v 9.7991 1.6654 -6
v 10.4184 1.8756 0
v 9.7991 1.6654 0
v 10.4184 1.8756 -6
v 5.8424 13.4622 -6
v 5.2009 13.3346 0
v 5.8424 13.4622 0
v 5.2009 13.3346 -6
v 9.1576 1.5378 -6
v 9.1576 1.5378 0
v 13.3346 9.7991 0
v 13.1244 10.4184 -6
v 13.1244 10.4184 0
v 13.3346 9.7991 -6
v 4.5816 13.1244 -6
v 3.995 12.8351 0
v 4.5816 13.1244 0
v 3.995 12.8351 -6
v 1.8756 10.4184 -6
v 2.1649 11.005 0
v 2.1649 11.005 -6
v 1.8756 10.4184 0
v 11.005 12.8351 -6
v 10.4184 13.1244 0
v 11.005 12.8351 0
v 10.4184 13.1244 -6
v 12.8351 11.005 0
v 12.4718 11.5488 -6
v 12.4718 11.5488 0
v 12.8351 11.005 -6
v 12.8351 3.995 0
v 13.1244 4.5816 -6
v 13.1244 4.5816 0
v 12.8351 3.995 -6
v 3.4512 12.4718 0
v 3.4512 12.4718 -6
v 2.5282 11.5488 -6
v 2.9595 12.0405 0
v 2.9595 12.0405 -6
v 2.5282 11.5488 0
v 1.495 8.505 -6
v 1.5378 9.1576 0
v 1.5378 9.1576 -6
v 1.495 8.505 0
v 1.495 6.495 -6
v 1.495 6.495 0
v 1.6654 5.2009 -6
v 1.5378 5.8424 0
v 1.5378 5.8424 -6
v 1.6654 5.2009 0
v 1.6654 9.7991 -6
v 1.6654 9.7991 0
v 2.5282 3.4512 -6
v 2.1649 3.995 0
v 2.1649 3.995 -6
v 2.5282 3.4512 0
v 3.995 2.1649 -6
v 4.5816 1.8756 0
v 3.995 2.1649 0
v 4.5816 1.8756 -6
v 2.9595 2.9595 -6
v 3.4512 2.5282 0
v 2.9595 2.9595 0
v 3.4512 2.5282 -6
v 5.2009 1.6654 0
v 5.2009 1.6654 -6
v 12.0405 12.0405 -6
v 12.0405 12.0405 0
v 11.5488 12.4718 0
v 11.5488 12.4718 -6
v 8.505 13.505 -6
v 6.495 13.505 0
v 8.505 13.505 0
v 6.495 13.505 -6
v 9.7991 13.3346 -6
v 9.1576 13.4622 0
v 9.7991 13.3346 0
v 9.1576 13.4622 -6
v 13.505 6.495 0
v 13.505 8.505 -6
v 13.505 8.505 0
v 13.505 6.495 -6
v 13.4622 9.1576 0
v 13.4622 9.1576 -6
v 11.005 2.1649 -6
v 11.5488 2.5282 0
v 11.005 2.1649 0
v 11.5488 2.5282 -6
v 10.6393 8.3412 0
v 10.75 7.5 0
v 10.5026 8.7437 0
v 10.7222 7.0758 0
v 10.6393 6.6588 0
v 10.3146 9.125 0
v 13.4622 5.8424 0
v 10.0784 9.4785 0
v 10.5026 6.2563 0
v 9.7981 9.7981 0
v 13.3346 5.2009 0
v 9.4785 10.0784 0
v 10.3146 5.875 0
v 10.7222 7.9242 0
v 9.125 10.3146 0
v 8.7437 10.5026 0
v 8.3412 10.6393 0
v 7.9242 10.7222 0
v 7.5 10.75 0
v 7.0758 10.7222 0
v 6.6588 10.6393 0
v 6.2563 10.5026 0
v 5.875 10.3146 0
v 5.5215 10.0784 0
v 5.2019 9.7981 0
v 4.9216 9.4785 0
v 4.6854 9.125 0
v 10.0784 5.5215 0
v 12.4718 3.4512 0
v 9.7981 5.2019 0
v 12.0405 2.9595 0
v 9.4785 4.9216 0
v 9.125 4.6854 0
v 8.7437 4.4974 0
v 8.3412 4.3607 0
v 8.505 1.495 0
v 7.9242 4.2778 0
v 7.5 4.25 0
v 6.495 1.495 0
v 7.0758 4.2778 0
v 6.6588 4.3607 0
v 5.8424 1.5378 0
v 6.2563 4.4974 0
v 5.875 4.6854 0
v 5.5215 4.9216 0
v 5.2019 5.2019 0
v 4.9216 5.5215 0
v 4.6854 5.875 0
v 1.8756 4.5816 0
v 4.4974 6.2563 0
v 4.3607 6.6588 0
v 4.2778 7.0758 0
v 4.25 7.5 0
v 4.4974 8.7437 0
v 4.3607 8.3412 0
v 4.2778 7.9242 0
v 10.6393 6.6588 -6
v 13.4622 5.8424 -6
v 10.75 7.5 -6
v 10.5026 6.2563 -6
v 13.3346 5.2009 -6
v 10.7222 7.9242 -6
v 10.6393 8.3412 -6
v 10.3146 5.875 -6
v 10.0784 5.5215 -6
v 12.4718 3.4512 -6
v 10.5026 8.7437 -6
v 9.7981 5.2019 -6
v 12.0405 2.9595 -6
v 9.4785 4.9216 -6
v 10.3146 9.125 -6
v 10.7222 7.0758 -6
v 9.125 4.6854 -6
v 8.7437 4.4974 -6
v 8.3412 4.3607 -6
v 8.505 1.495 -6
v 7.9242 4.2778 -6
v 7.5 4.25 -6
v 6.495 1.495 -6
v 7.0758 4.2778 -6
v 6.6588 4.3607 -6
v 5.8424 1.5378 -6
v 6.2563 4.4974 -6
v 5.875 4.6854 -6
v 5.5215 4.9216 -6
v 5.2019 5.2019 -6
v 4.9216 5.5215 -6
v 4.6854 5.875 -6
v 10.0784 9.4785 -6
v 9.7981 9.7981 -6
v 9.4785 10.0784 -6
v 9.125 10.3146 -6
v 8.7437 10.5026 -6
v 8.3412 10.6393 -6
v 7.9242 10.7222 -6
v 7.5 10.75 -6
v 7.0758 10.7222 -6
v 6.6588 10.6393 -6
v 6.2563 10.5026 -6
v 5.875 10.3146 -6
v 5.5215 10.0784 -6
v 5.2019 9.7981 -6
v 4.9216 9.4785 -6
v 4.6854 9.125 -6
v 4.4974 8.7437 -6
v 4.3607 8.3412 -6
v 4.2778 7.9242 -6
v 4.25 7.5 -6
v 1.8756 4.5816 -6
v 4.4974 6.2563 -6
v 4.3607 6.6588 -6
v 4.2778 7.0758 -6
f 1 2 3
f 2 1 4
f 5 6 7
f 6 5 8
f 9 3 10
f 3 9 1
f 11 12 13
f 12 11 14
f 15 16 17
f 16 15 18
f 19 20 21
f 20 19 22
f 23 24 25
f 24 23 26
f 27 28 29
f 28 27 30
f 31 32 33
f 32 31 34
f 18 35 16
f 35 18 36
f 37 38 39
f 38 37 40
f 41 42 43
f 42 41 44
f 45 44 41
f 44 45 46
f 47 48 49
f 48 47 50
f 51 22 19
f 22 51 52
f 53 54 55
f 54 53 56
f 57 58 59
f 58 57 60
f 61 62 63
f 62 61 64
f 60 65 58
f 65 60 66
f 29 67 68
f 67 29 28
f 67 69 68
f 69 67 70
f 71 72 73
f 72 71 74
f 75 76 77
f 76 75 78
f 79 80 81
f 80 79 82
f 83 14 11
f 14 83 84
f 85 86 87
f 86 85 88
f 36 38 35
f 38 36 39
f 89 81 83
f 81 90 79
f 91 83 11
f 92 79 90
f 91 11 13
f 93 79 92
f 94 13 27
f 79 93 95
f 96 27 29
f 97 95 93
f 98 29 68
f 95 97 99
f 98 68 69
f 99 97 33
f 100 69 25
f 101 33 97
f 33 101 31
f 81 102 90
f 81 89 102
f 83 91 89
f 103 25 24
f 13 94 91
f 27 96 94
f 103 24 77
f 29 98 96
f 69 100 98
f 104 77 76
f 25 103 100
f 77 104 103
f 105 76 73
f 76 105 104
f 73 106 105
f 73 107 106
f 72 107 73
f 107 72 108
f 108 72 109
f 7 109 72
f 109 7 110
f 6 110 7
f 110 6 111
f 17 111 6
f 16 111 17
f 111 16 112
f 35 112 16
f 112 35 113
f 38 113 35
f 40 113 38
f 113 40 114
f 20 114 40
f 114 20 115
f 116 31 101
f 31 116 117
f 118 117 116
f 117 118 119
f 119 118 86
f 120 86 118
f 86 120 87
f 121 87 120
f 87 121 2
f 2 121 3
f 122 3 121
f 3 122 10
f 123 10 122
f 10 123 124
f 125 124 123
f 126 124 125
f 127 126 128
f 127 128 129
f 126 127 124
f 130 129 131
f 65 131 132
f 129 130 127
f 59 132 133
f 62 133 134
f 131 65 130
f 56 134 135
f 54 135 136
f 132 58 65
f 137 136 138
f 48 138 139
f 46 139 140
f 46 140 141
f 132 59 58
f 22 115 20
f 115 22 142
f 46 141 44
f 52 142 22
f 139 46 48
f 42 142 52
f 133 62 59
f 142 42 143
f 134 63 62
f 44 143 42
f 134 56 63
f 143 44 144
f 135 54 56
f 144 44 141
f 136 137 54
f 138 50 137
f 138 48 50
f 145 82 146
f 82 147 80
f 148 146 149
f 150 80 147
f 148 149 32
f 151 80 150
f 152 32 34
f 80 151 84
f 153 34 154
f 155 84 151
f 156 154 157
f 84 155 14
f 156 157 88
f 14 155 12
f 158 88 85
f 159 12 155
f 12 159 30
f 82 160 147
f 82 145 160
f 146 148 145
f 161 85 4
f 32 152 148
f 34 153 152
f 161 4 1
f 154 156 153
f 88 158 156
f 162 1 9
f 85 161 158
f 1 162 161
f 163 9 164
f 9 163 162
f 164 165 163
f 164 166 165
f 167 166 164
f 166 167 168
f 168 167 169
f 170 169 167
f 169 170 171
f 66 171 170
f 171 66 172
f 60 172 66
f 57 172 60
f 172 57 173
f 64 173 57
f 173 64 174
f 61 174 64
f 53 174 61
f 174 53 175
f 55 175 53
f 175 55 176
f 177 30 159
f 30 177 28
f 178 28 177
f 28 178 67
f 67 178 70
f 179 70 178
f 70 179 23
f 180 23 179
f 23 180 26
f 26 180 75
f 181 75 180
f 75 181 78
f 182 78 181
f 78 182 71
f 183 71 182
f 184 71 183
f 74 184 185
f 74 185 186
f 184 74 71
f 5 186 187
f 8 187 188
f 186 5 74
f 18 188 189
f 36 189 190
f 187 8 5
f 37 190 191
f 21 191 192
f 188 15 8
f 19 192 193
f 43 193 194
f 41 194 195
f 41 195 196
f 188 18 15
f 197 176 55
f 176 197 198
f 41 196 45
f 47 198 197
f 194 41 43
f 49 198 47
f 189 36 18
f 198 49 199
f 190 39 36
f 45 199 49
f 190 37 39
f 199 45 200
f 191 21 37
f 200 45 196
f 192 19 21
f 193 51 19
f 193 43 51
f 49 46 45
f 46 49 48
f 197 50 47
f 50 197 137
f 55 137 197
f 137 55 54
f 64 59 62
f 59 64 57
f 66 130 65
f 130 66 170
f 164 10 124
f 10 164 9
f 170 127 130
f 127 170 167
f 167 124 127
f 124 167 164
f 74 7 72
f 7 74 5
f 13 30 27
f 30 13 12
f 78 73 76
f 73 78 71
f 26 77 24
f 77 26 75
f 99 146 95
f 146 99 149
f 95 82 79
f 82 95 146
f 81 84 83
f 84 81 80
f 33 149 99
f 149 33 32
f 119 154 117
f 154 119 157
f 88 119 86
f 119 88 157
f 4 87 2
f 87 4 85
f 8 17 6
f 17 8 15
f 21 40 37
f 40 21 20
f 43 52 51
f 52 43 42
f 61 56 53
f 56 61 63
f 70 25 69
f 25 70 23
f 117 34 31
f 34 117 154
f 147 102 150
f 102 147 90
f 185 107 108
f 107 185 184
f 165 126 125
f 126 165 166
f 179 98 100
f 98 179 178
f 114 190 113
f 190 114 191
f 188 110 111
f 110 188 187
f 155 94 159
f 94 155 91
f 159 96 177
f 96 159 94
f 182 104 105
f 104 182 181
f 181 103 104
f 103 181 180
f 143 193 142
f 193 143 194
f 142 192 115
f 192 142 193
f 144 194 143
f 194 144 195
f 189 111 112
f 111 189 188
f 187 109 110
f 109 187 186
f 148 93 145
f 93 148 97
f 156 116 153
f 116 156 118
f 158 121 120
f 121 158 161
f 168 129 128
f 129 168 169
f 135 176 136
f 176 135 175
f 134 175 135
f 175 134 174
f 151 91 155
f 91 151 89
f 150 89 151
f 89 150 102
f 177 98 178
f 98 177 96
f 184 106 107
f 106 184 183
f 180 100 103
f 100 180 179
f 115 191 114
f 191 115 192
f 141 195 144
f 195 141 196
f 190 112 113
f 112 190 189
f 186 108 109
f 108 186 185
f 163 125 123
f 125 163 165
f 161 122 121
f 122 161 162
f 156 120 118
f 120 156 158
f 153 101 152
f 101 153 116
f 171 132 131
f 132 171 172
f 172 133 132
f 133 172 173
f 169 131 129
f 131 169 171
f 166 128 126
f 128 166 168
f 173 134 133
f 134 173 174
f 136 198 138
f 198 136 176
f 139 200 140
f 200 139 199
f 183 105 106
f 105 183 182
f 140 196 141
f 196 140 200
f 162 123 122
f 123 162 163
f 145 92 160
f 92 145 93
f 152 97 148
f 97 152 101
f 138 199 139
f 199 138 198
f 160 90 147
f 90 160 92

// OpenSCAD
// Generated by SolidPython 1.1.3 on 2022-09-14 11:03:03
$fn = 48;


difference() {
	union() {
		color(alpha = 1.0000000000, c = "Gold") {
			translate(v = [7.5000000000, 7.5000000000, 0]) {
				rotate(a = [0, 0, 0]) {
					translate(v = [0, 0, -6]) {
						linear_extrude(height = 6) {
							offset(r = 5) {
								square(center = true, size = [2.0100000000, 2.0100000000]);
							}
						}
					}
				}
			}
		}
	}
	union() {
		color(alpha = 1.0000000000, c = "Gold") {
			translate(v = [7.5000000000, 7.5000000000, 0]) {
				rotate(a = [0, 0, 0]) {
					translate(v = [0, 0, -250]) {
						cylinder(h = 500, r = 3.2500000000);
					}
				}
			}
		}
	}
}
/***********************************************
*********      SolidPython code:      **********
************************************************
 
import subprocess

from solid.objects import *
from solid import scad_render_to_file, scad_render

import os

##################################################################################################################################################
##################################################################################################################################################
##################################################################################################################################################
##################################################################################################################################################
######  DIMENSION STUFF
##################################################################################################################################################
##################################################################################################################################################
##################################################################################################################################################
##################################################################################################################################################


mode = "3DPR"
#mode = "LAZE"
#mode = "TURE"
#mode = ""


######  Countersunk
countersunkM = []
WIDTH = 0
DEPTH = 1
countersunkM1width = 0; countersunkM1depth = 0; countersunkM2width = 0; countersunkM2depth = 0
countersunkM3width = 0
countersunkM3depth = 0
countersunkM4width = 0
countersunkM4depth = 0
countersunkM5width = 0
countersunkM5depth = 0
countersunkM6width = 0
countersunkM6depth = 0

######  Holes
holeM = []
holeM1 = 0
holeM2 = 0
holeM3 = 0
holeM4 = 0
holeM5 = 0
holeM6 = 0

######  Nuts
nutM = []
NUTWIDTH = 0
NUTDEPTH = 1
nutM1width = 0
nutM1depth = 0
nutM2width = 0
nutM2depth = 0
nutM3width = 0
nutM3depth = 0
nutM4width = 0
nutM4depth = 0
nutM5width = 0
nutM5depth = 0
nutM6width = 0
nutM6depth = 0

######  OOEB
ooebPinWidth = 0
ooebPinWidthWide = 0


######  Colors
colDefault = "Gold"

colOOEBbase = colDefault

colLEDRed = "red"
colWire = "gray"
    ######  Resistor
colRes = list()
colResistor = "beige"

colResBlack = "black"
colRes.append(colResBlack)
colResBrown = "brown"
colRes.append(colResBrown)
colResRed = "red"
colRes.append(colResRed)
colResOrange = "orange"
colRes.append(colResOrange)
colResYellow = "yellow"
colRes.append(colResYellow)
colResGreen = "green"
colRes.append(colResGreen)
colResBlue = "blue"
colRes.append(colResBlue)
colResPurple = "purple"
colRes.append(colResPurple)
colResGray = "gray"
colRes.append(colResGray)
colResWhite = "white"
colRes.append(colResWhite)





def changeMode(m="3DPR"):
    #print("####################################################      CHANGING MODES TO: " + m)
    global mode
    mode = m
    ######  Countersunk
    global countersunkM, countersunkM1width, countersunkM1depth, countersunkM2width, countersunkM2depth, countersunkM3width, countersunkM3depth, countersunkM4width, countersunkM4depth, countersunkM5width, countersunkM5depth, countersunkM6width, countersunkM6depth
    countersunkM = []
    countersunkM.append([0,0])
    countersunkM1width = 0 if mode== "3DPR" else 0
    countersunkM1depth = 0 if mode== "3DPR" else 0
    countersunkM.append([countersunkM1width,countersunkM1depth])
    countersunkM2width = 0 if mode== "3DPR" else 0
    countersunkM2depth = 0 if mode== "3DPR" else 0
    countersunkM.append([countersunkM2width,countersunkM2depth])
    countersunkM3width = 5.5/2+0.6 if mode== "3DPR" else 5.5/2
    countersunkM3depth = 1.7 if mode== "3DPR" else 1.7
    countersunkM.append([countersunkM3width,countersunkM3depth])
    countersunkM4width = 0 if mode== "3DPR" else 0
    countersunkM4depth = 0 if mode== "3DPR" else 0
    countersunkM.append([countersunkM4width,countersunkM4depth])
    countersunkM5width = 0 if mode== "3DPR" else 0
    countersunkM5depth = 0 if mode== "3DPR" else 0
    countersunkM.append([countersunkM5width,countersunkM5depth])
    countersunkM6width = 0 if mode== "3DPR" else 0
    countersunkM6depth = 0 if mode== "3DPR" else 0
    countersunkM.append([countersunkM6width,countersunkM6depth])
    ######  Holes
    global holeM, holeM1, holeM2, holeM3, holeM4, holeM5, holeM6, holeM7, holeM8
    holeM = []
    holeM1 = 1.2/2 if mode== "3DPR" else 1/2
    holeM2 = 2.3/2 if mode== "3DPR" else 2/2
    holeM3 = 3.4/2 if mode== "3DPR" else 3/2
    holeM4 = 4.4/2 if mode== "3DPR" else 4/2
    holeM5 = 5.4/2 if mode== "3DPR" else 5/2
    holeM6 = 6.5/2 if mode== "3DPR" else 6/2
    holeM7 = 7.5/2 if mode== "3DPR" else 7/2
    holeM8 = 8.6/2 if mode== "3DPR" else 8/2
    holeM.append(0)
    holeM.append(holeM1)
    holeM.append(holeM2)
    holeM.append(holeM3)
    holeM.append(holeM4)
    holeM.append(holeM5)
    holeM.append(holeM6)
    holeM.append(holeM7)
    holeM.append(holeM8)
    #####  Nuts
    global nutM, nutM1width, nutM1depth, nutM2width, nutM2depth, nutM3width, nutM3depth, nutM4width, nutM4depth, nutM5width, nutM5depth, nutM6width, nutM6depth
    nutM = []
    nutM.append([0,0]) 
    #M1 Nut
    nutM1width = 0
    nutM1depth = 0
    nutM.append([nutM1width,nutM1depth])    
    #M2 Nut
    nutM2width = 0
    nutM2depth = 0
    nutM.append([nutM2width,nutM2depth])    
    #M3 Nut
    nutM3width = 6.05 if mode== "3DPR" else 5.5
    nutM3depth = 2.5 if mode== "3DPR" else 2.5
    nutM.append([nutM3width,nutM3depth])    
    #M4 Nut
    nutM4width = 0
    nutM4depth = 0
    nutM.append([nutM4width,nutM4depth])    
    #M5 Nut
    nutM5width = 0
    nutM5depth = 0
    nutM.append([nutM5width,nutM5depth])    
    #M6 Nut
    nutM6width = 11 if mode== "3DPR" else 10
    nutM6depth = 5 if mode== "3DPR" else 5
    nutM.append([nutM6width,nutM6depth])    

    ######  OOEB
    global ooebPinWidth,  ooebPinWidthWide

    ooebPinWidth = 0.6
    if(mode=="3DPR" or mode=="LAZE"):
        ooebPinWidth = 0.6 + 0.6
    ooebPinWidthWide = 1.2
    if(mode=="3DPR" or mode=="LAZE"):
        ooebPinWidthWide = 1.2 + 0.6


changeMode()


""""    
holeM12D = s=="3DPR" ? 1.4/2 : 1.2/2;
holeM16D = s=="3DPR" ? 1.8/2 : 1.6/2;
holeM2 = s=="3DPR" ? 2.3/2 : 2/2;
holeM25D = s=="3DPR" ? 2.8/2 : 2.5/2;
holeM27D = s=="3DPR" ? 3.1/2 : 2.7/2;    
holeM3 = s=="3DPR" ? 3.4/2 : 3/2;
holeM35D = s=="3DPR" ? 3.9/2 : 35/2;
holeM4 = s=="3DPR" ? 4.4/2 : 4/2;
holeM5 = s=="3DPR" ? 5.4/2 : 5/2;
holeM6 = s=="3DPR" ? 6.5/2 : 6/2;
holeM6Minus = s=="3DPR" ? 5.8/2 : 5.9/2;
holeM7 = s=="3DPR" ? 7.5/2 : 7/2;
holeM8 = s=="3DPR" ? 8.6/2 : 8/2;
holeM9 = s=="3DPR" ? 9.6/2 : 9/2;
holeM10 = s=="3DPR" ? 10.6/2 : 10/2;
holeM11 = s=="3DPR" ? 11.6/2 : 11/2;
holeM12 = s=="3DPR" ? 12.6/2 : 12/2;
holeM13 = s=="3DPR" ? 13.6/2 : 13/2;
holeM14 = s=="3DPR" ? 14.6/2 : 14/2;
holeM15 = s=="3DPR" ? 15.6/2 : 15/2;
holeM16 = s=="3DPR" ? 16.6/2 : 16/2;
holeM17 = s=="3DPR" ? 17.6/2 : 17/2;
holeM18 = s=="3DPR" ? 18.6/2 : 18/2;
holeM19 = s=="3DPR" ? 19.6/2 : 19/2;
holeM20 = s=="3DPR" ? 20.6/2 : 20/2;
"""

##################################################################################################################################################
##################################################################################################################################################
##################################################################################################################################################
##################################################################################################################################################
######  REGULAR STUFF
##################################################################################################################################################
##################################################################################################################################################
##################################################################################################################################################
##################################################################################################################################################


def setMode(mode="3DPR"):
    changeMode(mode)

def getMode():
    return mode



def saveToScad(fileName, parts):
    dir =  os.path.dirname(os.path.abspath(fileName))
    Path(dir).mkdir(parents=True, exist_ok=True)
    file_out = scad_render_to_file(parts, fileName, file_header=f'$fn = 48;')


def saveToDxf(fileIn, fileOut=""):
    if fileOut == "":
        fileOut = fileIn.replace(".scad",".dxf")
    saveToFile(fileIn, fileOut)
    
def saveToPng(fileIn, fileOut="",extra="--render"):
    if fileOut == "":
        fileOut = fileIn.replace(".scad",".png")
    saveToFile(fileIn, fileOut)

def saveToStl(fileIn, fileOut=""):
    if fileOut == "":
        fileOut = fileIn.replace(".scad",".stl")
    saveToFile(fileIn, fileOut)
    
def saveToSvg(fileIn, fileOut=""):
    if fileOut == "":
        fileOut = fileIn.replace(".scad",".svg")
    saveToFile(fileIn, fileOut)

def saveToFile(fileIn, fileOut,extra=""):
    extra = extra + " --colorscheme Tomorrow"

    launchStr = 'openscad -o "' + fileOut + '"' + extra + ' "' + fileIn + '"'
    print("            saveToFile launch string: " + launchStr)
    subprocess.run(launchStr)
    x=0



def insert(item,pos=[None,None,None],x=0,y=0,z=0,ex=0,size=[None,None,None],length=0,rot=[None,None,None],rotX=0,rotY=0,rotZ=0,width=0,height=0,depth=100,rad=0,rad2=0,color=colDefault,alpha=1,OOwidth=0,OOheight=0,holes=True,negative=True, name=""):
    return OPSCInsert(item,pos,x,y,z,ex,size,length,rot,rotX,rotY,rotZ,width,height,depth,rad,rad2,color,alpha,OOwidth,OOheight,holes,negative,name)


def OPSCInsert(item,pos=[None,None,None],x=0,y=0,z=0,ex=0,size=[None,None,None],length=0,rot=[None,None,None],rotX=0,rotY=0,rotZ=0,width=0,height=0,depth=100,rad=0,rad2=0,col=colDefault,alpha=1,OOwidth=0,OOheight=0,holes=True,negative=True, name=""):
    
    """
        color(color,alpha){
            translate([x,y,z]){
                    rotate([rotX,rotY,rotZ]){
    """
    returnValue = ""

    #print(pos)

    if pos[0] != None:
        x=pos[0]
        y=pos[1]
        z=pos[2]
    if rot[0] != None:
        rotX=rot[0]
        rotY=rot[1]
        rotZ=rot[2]
    
    returnValue = color(col)(translate((x,y,z))(
                            rotate((rotX,rotY,rotZ))(
                                OPSCInsertIf(item,pos,x,y,z,ex,size,length,rot,rotX,rotY,rotZ,width,height,depth,rad,rad2,col,alpha,OOwidth,OOheight,holes,negative,name)
                            )
                        ))
                
    

    return returnValue

def OPSCInsertIf(item,pos=[None,None,None],x=0,y=0,z=0,ex=0,size=[None,None,None],length=0,rot=[None,None,None],rotX=0,rotY=0,rotZ=0,width=0,height=0,depth=100,rad=0,rad2=0,color=colDefault,alpha=1,OOwidth=0,OOheight=0,holes=True,negative=True, name=""):
    returnValue = cube([10,10,10])

    if size[0] != None:
        width=size[0]
        height=size[1]
        depth=size[2]

    #print("    OPSCInsert item:" + str(item) + " at:[" + str(x) + "," + str(y) + "," + str(z) + "] size: [" + str(width) + "," + str(height) + "," + str(depth) + "]")

    if(item=="cube"):
        returnValue =  translate([0,0,-depth/2])(cube([width,height,depth],center=True))
    elif(item=="cylinder"):        
        returnValue = translate([0,0,-depth/2])(cylinder(r=rad,h=depth,center=True))
    elif(item=="sphere"):        
        returnValue = translate([0,0,-rad])(sphere(r=rad))
    elif(item=="plane"):
        if depth == 100:
            returnValue = insert("cube",size=[1000,1000,0.1],color=color)            
        else:
            returnValue = insert("cube",size=[1000,1000,depth],color=color)                        
    elif(item=="cubeRounded"):
        if(rad == 0):
                            rad = 5
        returnValue =  translate([0,0,-depth])(
                        linear_extrude(height=depth)(                        
                            offset(r=rad)(
                                square((width-rad*2+.01,height-rad*2+.01),center=True)
                                )
                            )
        )
    ######  Countersunk
    elif(item == "countersunkM1" or item == "csM1" ):
        returnValue = OSPCgetCountersunk(rad=1)
    elif(item == "countersunkM2" or item == "csM2" ):
        returnValue = OSPCgetCountersunk(rad=2)
    elif(item == "countersunkM3" or item == "csM3" ):
        returnValue = OSPCgetCountersunk(rad=3)
    elif(item == "countersunkM4" or item == "csM4" ):
        returnValue = OSPCgetCountersunk(rad=4)
    elif(item == "countersunkM5" or item == "csM5" ):
        returnValue = OSPCgetCountersunk(rad=5)
    elif(item == "countersunkM6" or item == "csM6" ):
        returnValue = OSPCgetCountersunk(rad=6)
    elif(item == "countersunk" or item == "cs"):
        returnValue = OSPCgetCountersunk(rad=rad)


    ######  Holes    
    elif(item == "holeM1"):
        returnValue = OSPCgetHole(rad=1)
    elif(item == "holeM2"):
        returnValue = OSPCgetHole(rad=2)
    elif(item == "holeM3"):
        returnValue = OSPCgetHole(rad=3)
    elif(item == "holeM4"):
        returnValue = OSPCgetHole(rad=4)
    elif(item == "holeM5"):
        returnValue = OSPCgetHole(rad=5)
    elif(item == "holeM6"):
        returnValue = OSPCgetHole(rad=6)
    elif(item == "hole"):
        returnValue = OSPCgetHole(rad=rad)

    ######  Nuts
    elif(item == "nutM1"):
        returnValue = OSPCgetNut(rad=1,depth=depth)
    elif(item == "nutM2"):
        returnValue = OSPCgetNut(rad=2,depth=depth)
    elif(item == "nutM3"):
        returnValue = OSPCgetNut(rad=3,depth=depth)
    elif(item == "nutM4"):
        returnValue = OSPCgetNut(rad=4,depth=depth)
    elif(item == "nutM5"):
        returnValue = OSPCgetNut(rad=5,depth=depth)
    elif(item == "nutM6"):
        returnValue = OSPCgetNut(rad=6,depth=depth)
    elif(item == "nut"):
        returnValue = OSPCgetNut(rad=rad,depth=depth)
    return returnValue

                

def OSPCgetHole(rad):
    return translate([0,0,-250])(cylinder(r=holeM[rad],h=500))

def OSPCgetNut(rad,depth):
    depth = nutM[rad][NUTDEPTH] if depth==100 else depth
    returnValue = OPSChexagon(nutM[rad][NUTWIDTH],depth=depth)
    return returnValue

def OSPCgetCountersunk(rad):
    depth=countersunkM[rad][DEPTH]
    returnValue = translate([0,0,-depth])(cylinder(h=depth,r2=countersunkM[rad][WIDTH],r1=holeM[rad]))
    return returnValue

def OPSChexagon(width,depth):
    cutter = item()
    wid=width*2
    cutter.addPos(insert("cube",pos=[wid/2+width/2,0,0],size=[wid,wid,depth]))
    cutter.addPos(insert("cube",pos=[-wid/2-width/2,0,0],size=[wid,wid,depth]))

    cut = cutter.getPart()
    #print(depth)
    returnValue = difference()(
        translate([0,0,-depth/2])(cube([wid,wid,depth],center=True)),
        cut,
        rotate([0,0,60])(cut),
        rotate([0,0,-60])(cut)
    )

    return returnValue




class item:

    def __init__(self):
        self.posItems=list()
        self.negItems=list()

    def isEmpty(self):        
        testString = scad_render(self.getPart())
        #print("test String length: " + str(len(testString)))
        returnValue = False
        if len(testString) == 270:            
            returnValue = True
        return returnValue

    def addPos(self,part):
        self.posItems.append(part)
    def addNeg(self,part):
        self.negItems.append(part)

    def getPart(self):
        returnValue = difference()(
            union()(self.posItems),
            union()(self.negItems)
        )
        return returnValue

    def getLaser(self,start=0,layers=1,thickness=-3,tileDif=200):
        rv= []

        for x in range(layers):
            rv.append(translate([0,x*tileDif,0])(
                    projection()(
                        intersection()(
                            insert("plane",z=start+x*thickness),
                            self.getPart()
                        )
                    )
            )
            )
        return union()(rv)

    def getSplit(self,start=0,depth=6,tileDif=200):
        rv= []

        rv.append(translate([0,0,0])(
            intersection()(
                insert("cube",size=[100,100,depth],z=start),
                self.getPart()
            )
        )
        )

        rv.append(translate([0,tileDif,depth])(
            intersection()(
                insert("cube",size=[100,100,depth],z=start-depth),
                self.getPart()
            )
        )
        )        
        return union()(rv)


 
 
************************************************/
